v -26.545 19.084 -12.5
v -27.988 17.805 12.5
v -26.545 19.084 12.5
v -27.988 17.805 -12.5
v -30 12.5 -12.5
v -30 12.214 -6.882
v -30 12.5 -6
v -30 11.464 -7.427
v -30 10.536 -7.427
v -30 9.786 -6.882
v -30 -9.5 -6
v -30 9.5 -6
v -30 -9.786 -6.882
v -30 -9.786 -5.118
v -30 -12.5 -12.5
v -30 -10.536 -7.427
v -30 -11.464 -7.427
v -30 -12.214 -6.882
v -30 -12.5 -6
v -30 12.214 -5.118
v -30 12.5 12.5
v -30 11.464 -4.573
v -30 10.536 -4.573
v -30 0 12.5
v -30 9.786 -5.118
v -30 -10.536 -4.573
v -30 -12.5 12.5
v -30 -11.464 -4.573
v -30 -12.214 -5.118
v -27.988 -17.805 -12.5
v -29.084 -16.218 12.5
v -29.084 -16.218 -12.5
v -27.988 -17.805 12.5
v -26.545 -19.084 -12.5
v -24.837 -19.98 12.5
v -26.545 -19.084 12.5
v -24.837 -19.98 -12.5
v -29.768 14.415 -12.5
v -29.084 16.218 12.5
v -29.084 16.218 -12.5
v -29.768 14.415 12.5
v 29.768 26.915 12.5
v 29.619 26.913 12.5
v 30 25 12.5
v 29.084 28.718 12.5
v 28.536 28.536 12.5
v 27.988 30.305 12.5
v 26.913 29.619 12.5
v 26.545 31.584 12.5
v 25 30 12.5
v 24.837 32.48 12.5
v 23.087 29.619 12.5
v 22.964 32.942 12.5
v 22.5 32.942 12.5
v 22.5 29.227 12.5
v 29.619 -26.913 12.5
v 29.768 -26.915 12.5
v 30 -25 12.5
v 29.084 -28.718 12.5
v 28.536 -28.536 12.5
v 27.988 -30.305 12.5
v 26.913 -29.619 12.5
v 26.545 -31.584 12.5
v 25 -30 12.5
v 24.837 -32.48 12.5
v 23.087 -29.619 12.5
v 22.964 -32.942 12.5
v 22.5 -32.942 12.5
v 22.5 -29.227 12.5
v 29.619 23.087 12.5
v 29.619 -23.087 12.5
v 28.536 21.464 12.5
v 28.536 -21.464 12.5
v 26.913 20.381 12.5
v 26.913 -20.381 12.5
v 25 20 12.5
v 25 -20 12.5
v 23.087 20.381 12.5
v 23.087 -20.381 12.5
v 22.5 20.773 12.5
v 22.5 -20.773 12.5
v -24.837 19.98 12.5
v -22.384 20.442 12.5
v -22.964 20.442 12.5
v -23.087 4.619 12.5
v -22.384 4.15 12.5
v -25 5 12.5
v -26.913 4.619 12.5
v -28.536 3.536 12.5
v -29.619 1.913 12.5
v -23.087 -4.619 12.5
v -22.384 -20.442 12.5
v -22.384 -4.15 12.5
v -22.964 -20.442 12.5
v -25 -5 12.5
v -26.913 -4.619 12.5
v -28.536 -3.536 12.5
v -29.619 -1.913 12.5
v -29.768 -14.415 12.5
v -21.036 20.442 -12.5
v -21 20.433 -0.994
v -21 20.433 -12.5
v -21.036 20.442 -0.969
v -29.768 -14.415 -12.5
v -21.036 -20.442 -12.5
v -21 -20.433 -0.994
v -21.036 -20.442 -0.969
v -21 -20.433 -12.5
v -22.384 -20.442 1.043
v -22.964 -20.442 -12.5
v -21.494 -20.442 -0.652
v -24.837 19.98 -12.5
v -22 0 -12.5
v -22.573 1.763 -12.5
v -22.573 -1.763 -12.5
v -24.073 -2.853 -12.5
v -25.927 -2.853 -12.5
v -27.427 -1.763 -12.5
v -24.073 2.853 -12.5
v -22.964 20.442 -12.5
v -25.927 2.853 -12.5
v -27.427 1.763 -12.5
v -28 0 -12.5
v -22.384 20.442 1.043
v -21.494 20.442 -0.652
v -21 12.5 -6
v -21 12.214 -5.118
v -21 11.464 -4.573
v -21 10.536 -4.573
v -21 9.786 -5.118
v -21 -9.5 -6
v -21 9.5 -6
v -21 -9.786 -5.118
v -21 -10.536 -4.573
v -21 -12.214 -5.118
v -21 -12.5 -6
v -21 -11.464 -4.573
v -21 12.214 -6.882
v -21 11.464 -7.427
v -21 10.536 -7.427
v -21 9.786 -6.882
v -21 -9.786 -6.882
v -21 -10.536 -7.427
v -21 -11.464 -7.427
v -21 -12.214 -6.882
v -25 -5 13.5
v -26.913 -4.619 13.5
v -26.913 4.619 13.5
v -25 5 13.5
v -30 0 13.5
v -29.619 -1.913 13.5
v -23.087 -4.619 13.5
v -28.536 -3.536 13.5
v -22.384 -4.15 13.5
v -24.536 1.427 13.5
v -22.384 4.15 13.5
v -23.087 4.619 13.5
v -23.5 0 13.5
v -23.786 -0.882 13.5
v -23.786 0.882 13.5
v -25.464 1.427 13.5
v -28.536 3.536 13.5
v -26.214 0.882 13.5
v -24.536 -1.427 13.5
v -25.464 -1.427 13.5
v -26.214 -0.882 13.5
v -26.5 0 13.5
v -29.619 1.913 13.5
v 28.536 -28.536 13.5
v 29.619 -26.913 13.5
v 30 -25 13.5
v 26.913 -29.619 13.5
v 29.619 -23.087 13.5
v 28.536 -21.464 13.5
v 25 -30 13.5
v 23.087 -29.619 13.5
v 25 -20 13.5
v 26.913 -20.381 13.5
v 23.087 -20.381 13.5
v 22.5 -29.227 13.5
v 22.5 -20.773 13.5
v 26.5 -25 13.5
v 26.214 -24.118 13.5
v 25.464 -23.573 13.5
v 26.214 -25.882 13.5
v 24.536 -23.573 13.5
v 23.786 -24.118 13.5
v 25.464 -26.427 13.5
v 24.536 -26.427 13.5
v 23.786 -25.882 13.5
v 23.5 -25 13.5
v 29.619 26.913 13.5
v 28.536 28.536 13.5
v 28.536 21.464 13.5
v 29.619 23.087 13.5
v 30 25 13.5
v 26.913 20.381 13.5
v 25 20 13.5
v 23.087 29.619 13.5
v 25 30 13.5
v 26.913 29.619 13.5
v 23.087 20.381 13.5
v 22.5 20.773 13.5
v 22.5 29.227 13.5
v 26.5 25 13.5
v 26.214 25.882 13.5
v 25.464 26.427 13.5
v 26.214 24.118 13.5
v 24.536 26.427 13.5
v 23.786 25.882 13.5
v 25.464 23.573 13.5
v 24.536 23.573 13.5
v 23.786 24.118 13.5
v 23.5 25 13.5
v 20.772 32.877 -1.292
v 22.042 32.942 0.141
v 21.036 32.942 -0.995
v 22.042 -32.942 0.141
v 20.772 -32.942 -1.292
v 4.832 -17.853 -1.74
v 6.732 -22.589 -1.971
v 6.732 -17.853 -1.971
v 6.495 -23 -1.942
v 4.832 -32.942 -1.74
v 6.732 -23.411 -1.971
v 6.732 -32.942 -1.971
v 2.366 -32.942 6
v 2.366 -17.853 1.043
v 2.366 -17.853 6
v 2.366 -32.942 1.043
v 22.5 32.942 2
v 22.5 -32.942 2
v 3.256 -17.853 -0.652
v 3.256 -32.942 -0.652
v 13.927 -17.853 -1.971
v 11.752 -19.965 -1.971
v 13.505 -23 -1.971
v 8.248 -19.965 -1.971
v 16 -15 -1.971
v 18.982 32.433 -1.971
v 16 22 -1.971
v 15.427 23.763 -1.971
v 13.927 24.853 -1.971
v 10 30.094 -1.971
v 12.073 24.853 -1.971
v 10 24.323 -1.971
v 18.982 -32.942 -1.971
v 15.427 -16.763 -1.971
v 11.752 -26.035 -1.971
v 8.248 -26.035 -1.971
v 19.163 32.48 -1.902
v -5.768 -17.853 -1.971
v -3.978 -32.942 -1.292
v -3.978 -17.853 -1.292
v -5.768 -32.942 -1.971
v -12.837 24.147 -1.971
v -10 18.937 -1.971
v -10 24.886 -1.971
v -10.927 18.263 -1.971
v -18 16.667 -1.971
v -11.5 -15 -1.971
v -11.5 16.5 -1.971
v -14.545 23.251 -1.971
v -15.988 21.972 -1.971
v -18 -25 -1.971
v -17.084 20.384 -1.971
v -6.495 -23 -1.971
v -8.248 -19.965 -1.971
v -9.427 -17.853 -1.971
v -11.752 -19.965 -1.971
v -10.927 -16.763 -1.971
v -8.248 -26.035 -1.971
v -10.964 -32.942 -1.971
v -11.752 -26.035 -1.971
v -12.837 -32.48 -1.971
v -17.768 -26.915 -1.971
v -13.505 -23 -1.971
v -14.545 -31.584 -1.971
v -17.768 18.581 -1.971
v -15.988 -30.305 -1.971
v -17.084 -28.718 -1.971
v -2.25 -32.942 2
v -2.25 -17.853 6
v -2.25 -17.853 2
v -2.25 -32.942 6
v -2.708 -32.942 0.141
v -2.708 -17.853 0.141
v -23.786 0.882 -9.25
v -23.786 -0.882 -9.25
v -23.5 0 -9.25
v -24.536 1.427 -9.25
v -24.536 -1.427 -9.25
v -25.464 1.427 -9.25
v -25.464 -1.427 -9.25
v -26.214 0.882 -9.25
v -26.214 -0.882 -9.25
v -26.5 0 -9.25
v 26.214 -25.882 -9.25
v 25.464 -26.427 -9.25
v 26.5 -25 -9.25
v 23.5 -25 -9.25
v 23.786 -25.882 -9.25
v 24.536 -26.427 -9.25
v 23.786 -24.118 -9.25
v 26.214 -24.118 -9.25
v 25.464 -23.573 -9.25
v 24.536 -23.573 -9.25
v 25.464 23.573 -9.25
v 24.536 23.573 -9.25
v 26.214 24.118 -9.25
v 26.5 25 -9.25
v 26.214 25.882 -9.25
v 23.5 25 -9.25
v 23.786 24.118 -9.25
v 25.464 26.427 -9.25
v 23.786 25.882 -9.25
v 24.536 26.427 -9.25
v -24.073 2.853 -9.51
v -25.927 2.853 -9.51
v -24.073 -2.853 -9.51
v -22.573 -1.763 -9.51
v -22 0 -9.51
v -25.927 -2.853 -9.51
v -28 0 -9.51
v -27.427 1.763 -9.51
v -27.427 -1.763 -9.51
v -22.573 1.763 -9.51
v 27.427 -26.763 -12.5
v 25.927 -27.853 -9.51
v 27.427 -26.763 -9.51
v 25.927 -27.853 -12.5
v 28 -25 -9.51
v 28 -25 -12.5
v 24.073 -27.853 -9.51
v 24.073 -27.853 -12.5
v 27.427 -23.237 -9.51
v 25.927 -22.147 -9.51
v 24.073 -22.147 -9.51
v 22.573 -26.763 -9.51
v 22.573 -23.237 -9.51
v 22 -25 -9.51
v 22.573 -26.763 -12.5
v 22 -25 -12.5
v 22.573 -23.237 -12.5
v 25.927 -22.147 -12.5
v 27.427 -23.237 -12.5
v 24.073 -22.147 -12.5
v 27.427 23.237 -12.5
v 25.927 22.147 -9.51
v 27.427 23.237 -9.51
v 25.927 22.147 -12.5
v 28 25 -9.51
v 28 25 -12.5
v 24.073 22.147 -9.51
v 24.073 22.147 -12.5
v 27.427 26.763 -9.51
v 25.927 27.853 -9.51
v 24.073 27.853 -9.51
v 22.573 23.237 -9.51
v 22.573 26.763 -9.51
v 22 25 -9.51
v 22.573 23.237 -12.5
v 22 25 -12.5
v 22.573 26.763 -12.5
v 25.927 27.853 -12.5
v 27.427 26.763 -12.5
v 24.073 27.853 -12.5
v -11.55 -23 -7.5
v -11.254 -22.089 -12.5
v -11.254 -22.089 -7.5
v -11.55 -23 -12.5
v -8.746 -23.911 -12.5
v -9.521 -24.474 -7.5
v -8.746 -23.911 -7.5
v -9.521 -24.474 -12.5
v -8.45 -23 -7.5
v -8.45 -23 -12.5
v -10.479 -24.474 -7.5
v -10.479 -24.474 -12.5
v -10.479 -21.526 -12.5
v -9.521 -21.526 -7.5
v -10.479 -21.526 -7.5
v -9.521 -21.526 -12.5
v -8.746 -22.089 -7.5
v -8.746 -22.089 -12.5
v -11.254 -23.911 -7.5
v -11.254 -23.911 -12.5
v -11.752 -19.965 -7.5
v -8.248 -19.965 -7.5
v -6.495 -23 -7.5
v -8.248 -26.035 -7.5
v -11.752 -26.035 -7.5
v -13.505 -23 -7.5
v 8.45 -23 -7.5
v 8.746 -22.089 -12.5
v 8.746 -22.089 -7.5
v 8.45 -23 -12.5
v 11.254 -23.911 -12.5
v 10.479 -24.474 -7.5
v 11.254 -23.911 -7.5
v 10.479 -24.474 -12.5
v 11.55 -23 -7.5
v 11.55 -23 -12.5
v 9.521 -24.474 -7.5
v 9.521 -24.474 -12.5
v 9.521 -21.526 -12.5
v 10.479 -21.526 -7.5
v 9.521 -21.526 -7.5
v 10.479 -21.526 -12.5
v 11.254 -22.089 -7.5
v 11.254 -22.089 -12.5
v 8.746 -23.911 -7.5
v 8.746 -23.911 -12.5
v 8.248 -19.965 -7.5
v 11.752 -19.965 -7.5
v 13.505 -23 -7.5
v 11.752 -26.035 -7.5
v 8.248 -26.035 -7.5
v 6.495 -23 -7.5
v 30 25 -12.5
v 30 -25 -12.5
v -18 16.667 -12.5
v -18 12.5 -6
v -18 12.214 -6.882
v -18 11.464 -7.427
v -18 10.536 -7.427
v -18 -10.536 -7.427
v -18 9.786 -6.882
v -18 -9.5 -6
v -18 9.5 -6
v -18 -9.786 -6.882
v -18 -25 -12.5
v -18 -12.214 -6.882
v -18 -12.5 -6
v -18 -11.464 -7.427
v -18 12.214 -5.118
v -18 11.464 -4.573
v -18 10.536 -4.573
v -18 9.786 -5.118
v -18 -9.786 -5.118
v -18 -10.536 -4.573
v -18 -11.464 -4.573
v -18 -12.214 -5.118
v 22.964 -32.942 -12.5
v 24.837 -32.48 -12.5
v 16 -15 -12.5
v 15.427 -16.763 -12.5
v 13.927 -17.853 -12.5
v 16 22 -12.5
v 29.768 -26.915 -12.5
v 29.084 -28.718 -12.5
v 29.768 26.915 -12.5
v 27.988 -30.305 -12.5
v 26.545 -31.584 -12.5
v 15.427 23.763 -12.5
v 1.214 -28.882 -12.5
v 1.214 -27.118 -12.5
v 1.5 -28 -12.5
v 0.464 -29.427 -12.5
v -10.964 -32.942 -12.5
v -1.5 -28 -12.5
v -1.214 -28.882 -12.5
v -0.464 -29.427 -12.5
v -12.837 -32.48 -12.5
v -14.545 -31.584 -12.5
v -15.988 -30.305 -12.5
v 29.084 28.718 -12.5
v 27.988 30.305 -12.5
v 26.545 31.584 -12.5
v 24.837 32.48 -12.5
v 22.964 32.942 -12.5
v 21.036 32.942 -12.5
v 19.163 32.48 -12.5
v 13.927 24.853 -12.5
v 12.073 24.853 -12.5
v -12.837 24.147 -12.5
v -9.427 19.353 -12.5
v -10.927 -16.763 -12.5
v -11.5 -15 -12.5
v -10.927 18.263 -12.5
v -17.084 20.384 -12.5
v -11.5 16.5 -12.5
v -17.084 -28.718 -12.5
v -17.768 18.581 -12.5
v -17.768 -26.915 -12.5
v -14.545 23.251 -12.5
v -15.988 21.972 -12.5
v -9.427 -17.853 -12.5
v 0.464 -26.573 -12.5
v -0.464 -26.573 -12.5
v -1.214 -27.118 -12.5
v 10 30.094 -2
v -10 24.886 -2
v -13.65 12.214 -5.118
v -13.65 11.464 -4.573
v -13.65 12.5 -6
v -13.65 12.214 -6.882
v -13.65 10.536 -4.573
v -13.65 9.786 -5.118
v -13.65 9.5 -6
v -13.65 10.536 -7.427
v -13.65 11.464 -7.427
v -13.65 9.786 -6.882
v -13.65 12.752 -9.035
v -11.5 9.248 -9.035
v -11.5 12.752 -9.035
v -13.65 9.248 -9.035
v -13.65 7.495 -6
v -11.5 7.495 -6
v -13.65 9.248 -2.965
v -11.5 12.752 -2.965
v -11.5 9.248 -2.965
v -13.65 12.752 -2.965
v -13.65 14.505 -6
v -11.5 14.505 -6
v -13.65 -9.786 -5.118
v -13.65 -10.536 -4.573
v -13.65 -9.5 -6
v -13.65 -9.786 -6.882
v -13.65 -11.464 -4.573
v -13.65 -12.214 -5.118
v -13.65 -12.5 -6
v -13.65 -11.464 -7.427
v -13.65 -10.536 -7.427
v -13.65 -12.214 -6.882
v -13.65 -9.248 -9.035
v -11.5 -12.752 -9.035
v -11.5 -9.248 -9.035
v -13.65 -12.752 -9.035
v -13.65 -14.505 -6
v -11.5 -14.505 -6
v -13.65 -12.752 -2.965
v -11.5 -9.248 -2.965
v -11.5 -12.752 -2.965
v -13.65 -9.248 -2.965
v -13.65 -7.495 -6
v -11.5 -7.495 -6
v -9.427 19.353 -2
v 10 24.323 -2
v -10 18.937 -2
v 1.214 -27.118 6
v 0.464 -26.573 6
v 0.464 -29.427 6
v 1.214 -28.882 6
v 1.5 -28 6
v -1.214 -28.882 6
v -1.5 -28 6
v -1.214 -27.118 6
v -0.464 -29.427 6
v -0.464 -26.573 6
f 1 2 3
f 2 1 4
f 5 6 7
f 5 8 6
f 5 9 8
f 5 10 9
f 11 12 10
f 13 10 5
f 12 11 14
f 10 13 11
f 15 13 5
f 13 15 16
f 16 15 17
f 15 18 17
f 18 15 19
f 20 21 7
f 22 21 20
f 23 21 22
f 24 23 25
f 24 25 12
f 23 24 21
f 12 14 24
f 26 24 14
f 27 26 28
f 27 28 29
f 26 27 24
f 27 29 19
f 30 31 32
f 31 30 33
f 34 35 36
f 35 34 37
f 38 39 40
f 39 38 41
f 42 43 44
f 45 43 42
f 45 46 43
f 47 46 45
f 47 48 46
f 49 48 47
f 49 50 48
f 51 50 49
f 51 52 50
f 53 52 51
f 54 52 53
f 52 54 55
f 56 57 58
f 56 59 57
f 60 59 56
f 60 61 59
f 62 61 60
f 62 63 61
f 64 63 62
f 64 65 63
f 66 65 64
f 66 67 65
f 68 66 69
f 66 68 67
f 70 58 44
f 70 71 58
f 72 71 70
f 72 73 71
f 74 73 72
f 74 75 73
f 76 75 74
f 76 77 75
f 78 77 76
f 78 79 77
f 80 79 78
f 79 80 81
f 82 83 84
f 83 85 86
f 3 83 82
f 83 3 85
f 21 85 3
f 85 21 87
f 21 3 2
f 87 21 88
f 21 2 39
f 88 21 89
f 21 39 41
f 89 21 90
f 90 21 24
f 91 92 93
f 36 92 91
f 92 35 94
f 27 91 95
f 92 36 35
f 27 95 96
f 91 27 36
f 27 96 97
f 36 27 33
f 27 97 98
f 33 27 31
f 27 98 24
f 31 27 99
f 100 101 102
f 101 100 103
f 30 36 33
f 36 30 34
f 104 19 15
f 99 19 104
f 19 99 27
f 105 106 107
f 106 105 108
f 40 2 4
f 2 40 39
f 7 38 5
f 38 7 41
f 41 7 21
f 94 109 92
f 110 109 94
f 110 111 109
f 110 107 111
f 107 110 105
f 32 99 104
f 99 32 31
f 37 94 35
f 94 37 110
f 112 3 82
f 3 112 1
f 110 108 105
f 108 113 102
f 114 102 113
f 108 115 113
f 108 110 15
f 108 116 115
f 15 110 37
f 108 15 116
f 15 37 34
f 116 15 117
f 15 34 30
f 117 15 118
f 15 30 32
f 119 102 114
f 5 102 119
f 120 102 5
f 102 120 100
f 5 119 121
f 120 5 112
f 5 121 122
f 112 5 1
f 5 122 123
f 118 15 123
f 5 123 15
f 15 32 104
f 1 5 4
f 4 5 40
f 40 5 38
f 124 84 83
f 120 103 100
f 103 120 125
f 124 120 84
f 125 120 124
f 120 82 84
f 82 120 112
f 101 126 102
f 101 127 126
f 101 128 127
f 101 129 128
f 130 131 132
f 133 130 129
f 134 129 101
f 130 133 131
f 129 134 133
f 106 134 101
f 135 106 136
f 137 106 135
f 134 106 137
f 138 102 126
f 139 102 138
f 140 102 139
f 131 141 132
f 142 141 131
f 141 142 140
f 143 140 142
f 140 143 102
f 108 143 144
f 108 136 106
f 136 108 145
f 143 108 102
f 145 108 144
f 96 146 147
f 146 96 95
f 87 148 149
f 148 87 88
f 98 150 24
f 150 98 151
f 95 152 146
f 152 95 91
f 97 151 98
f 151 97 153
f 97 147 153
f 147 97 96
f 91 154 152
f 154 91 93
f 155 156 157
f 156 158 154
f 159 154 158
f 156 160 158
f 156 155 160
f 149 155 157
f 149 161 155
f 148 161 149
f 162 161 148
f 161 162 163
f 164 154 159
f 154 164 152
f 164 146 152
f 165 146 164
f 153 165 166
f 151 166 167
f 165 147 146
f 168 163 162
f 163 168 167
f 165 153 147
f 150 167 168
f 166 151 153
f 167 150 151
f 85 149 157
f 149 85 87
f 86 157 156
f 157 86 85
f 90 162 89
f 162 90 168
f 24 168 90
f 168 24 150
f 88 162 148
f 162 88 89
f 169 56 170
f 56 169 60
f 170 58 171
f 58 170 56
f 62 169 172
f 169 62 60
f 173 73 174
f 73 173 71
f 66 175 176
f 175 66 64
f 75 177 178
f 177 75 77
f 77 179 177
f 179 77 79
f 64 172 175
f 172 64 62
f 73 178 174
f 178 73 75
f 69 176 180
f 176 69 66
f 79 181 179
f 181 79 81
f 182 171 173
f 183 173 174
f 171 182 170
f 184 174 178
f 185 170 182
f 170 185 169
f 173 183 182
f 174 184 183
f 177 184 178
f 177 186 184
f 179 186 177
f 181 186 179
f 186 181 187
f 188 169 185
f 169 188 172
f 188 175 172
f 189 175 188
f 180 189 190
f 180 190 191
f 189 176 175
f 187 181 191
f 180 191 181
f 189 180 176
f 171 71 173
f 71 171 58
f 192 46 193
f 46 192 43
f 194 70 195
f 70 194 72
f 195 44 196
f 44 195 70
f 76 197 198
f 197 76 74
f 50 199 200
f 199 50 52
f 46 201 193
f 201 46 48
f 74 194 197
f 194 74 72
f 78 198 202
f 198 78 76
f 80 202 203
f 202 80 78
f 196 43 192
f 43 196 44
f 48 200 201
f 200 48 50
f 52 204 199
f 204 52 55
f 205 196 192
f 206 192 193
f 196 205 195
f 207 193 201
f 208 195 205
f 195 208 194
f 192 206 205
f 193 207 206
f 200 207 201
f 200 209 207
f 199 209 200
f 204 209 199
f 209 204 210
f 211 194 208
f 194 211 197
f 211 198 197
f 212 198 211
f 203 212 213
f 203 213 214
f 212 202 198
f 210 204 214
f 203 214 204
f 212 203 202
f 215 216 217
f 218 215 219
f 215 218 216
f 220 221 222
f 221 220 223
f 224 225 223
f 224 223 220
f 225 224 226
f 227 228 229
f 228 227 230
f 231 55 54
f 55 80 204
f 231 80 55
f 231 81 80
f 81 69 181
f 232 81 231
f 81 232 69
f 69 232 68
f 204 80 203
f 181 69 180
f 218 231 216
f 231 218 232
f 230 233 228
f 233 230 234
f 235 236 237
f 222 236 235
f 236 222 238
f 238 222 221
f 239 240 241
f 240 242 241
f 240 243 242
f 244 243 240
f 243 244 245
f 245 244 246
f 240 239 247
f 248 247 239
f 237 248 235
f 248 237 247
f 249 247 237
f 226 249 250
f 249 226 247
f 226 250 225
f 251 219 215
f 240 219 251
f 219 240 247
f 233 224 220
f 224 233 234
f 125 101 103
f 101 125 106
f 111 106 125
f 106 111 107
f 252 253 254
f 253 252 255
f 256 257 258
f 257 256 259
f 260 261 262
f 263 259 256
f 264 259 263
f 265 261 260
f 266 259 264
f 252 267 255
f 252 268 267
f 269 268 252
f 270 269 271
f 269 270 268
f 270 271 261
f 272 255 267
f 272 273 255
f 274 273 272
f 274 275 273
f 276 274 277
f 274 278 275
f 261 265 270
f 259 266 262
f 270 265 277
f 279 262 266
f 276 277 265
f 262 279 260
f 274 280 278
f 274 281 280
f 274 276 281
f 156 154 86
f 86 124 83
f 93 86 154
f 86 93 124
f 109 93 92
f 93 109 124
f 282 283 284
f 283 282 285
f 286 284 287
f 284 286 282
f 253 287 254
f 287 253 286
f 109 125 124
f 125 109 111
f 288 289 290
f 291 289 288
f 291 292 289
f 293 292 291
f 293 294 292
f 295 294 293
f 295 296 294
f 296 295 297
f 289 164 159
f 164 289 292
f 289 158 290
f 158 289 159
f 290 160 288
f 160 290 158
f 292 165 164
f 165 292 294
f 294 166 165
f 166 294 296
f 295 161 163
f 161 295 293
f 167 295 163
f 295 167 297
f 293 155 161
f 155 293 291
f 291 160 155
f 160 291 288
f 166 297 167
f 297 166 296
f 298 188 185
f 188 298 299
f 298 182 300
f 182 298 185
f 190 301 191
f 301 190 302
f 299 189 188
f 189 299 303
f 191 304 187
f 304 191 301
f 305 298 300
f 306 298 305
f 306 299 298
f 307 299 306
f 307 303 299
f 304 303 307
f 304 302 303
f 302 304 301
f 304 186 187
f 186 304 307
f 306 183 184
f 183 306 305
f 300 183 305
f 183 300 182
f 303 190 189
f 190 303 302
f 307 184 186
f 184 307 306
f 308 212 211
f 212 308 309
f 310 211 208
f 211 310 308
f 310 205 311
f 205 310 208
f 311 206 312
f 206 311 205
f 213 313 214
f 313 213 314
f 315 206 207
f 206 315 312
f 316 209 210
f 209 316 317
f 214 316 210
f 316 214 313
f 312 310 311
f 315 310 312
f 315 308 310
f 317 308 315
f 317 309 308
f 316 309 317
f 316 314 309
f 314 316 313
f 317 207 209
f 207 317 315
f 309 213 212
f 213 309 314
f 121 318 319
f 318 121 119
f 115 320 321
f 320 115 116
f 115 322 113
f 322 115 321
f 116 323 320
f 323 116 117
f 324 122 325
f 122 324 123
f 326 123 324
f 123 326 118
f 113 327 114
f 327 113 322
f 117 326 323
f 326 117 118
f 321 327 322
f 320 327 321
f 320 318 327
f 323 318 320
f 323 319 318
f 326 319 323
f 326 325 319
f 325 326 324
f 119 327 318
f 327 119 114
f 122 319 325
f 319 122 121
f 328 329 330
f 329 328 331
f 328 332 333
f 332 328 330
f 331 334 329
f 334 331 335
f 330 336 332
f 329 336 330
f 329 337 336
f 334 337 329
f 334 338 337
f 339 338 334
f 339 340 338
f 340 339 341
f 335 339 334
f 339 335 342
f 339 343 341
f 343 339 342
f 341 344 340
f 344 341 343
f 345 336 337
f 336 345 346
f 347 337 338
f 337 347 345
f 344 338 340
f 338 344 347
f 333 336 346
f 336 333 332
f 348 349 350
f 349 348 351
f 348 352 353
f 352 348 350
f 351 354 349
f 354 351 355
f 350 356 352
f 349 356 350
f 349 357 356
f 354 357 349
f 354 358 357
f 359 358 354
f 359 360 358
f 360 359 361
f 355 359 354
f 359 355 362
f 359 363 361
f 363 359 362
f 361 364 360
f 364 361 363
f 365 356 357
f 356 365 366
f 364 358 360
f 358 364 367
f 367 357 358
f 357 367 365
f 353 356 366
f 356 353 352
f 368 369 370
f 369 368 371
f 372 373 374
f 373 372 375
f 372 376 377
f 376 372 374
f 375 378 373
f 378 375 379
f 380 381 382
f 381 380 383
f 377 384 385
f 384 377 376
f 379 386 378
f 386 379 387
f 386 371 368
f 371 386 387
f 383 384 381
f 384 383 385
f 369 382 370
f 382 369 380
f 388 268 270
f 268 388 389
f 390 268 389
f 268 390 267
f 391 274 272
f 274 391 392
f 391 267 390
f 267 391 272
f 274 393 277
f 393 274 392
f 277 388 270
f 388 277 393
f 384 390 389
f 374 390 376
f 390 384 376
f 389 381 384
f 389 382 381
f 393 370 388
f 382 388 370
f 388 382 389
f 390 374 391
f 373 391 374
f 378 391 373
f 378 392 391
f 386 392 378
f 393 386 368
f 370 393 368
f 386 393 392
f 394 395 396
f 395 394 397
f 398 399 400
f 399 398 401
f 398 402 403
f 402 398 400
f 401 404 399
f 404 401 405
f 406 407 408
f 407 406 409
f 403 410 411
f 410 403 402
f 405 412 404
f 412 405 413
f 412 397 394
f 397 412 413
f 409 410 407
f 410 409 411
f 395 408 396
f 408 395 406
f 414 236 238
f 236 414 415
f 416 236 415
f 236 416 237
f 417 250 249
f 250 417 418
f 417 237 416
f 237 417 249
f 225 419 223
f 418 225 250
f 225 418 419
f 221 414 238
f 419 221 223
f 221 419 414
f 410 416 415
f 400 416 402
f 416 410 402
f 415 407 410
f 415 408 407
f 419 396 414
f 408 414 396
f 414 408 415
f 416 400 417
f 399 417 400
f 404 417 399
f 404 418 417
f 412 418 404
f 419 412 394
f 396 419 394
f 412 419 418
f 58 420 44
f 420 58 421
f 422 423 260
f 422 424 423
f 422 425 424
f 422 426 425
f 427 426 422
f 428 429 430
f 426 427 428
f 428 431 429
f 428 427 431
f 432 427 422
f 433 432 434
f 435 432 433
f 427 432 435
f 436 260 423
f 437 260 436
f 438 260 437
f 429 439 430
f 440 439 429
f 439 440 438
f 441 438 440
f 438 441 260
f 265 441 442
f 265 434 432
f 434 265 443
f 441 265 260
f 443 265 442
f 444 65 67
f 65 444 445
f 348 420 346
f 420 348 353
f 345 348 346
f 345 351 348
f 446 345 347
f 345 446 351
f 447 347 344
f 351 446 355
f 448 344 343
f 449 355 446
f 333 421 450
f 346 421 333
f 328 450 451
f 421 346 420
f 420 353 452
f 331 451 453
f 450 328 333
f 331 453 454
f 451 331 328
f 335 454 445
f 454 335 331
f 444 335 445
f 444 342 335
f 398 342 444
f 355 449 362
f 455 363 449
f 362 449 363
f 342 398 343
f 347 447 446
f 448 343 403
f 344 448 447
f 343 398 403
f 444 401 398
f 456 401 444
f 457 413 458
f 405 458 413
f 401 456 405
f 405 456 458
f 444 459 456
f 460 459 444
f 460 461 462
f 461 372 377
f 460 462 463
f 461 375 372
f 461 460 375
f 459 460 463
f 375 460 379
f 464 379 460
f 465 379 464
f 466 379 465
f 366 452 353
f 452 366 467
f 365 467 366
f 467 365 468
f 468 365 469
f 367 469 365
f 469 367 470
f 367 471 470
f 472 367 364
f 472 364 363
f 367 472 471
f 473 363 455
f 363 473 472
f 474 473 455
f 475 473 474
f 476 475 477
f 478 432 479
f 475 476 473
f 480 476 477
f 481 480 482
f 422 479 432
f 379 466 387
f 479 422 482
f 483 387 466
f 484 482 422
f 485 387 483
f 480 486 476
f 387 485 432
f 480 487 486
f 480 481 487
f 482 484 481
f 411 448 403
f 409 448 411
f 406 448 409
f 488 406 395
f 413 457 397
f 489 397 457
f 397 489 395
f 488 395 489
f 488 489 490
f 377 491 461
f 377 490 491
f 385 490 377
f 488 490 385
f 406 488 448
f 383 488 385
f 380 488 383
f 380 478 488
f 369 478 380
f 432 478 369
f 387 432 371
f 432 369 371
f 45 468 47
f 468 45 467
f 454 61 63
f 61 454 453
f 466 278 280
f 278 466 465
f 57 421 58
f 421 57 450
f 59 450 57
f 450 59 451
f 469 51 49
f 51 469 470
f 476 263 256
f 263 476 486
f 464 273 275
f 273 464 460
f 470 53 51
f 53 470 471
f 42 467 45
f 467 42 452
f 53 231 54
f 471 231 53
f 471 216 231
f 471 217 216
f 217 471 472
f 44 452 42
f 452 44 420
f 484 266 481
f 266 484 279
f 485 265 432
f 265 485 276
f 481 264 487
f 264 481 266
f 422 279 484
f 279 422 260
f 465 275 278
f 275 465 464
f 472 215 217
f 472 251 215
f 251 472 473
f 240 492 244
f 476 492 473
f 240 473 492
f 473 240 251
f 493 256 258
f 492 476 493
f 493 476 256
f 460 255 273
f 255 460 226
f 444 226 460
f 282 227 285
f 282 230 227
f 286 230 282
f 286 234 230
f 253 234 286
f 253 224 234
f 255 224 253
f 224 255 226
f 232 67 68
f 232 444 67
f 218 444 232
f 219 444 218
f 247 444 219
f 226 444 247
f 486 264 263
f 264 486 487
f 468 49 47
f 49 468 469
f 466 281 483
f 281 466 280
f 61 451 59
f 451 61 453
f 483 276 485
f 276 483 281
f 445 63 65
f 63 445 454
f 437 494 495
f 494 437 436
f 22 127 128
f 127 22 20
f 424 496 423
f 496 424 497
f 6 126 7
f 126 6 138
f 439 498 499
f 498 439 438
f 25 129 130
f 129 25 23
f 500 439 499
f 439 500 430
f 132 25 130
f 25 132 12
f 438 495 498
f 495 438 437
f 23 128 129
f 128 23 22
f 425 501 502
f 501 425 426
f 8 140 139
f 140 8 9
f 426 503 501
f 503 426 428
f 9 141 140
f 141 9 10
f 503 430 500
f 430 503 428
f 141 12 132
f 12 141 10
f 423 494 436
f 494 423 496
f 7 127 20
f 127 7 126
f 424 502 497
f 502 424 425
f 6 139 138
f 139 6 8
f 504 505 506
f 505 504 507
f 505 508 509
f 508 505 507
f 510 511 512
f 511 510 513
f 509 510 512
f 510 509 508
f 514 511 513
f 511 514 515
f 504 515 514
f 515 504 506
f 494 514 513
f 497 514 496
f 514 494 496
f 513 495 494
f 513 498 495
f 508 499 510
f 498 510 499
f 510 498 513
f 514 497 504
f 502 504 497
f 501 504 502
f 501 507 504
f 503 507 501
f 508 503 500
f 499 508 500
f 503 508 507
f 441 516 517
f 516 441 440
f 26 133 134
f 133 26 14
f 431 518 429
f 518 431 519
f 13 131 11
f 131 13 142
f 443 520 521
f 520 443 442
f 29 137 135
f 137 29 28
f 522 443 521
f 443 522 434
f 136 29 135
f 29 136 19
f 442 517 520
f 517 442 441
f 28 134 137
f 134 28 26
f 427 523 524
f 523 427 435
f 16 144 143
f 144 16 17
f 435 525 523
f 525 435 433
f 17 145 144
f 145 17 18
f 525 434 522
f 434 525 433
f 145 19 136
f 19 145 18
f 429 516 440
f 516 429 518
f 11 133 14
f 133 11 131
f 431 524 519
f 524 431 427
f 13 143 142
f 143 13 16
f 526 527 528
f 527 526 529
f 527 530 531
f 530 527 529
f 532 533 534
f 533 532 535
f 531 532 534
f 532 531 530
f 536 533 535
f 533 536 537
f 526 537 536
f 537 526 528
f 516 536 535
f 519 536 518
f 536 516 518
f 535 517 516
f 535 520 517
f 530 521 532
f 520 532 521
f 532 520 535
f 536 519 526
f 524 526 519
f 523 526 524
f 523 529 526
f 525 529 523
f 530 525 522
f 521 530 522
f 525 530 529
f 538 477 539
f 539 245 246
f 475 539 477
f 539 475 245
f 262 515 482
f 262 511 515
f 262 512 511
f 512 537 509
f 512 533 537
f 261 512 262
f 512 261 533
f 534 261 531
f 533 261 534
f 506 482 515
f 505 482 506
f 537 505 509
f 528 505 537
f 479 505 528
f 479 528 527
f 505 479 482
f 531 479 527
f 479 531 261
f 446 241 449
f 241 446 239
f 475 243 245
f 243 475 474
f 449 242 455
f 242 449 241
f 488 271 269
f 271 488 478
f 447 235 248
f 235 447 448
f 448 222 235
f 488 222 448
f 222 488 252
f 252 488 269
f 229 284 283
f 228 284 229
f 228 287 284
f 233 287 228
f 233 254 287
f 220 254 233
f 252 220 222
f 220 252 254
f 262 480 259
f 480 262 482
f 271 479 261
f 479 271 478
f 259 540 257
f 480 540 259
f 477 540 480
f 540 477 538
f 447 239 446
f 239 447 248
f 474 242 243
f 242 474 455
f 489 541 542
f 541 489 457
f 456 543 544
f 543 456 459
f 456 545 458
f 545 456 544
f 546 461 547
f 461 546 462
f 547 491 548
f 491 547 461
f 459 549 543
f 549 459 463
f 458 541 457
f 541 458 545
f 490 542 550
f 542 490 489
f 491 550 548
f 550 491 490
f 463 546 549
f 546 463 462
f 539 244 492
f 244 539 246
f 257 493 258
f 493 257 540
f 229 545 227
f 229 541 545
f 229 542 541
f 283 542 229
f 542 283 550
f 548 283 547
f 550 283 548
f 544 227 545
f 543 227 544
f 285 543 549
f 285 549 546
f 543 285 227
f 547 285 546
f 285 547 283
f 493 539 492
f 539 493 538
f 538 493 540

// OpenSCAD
// file: metric-cerberus.scad
module extrusion4040(h=1000) {
  translate([-20,-20,0])
    linear_extrude(height=h) import("extrusion.dxf");
}

module extrusion4040_no_hole(h=40) {
  translate([-20,-20,0])
    linear_extrude(height=h) import("extrusion-no-hole.dxf");
}

module extrusion4040_no_hole_3_groove(h=40) {
  rotate([0,0,90]) translate([-20,-20,0])
    linear_extrude(height=h) import("extrusion-no-hole-3-groove.dxf");
}

module fixing_bar(length = 320, height = 25, thickness = 2.5) {
  rotate([0, 0, -30]) translate([-(thickness/2+20), -(length/2+7.5), height/2])
    cube([thickness, length, height], center = true);
}

module slots_for_bars(h = 25.4, hole_diameter = 4.2) {
  // slots for bars
  rotate([0, 0, 30]) translate([21.5, -57.5, h/2])
    cube([3, 100, h], center = true);
  rotate([0, 0, -30]) translate([-21.5, -57.5, h/2])
    cube([3, 100, h], center = true);

  // cutouts beside bars
  rotate([0, 0, 30]) translate([26, -65, h/2])
    cube([10, 100, h], center = true);
  rotate([0,0,-30]) translate([-26, -65, h/2])
    cube([10, 100,h], center = true);

  // holes to secure bar
  translate([30, -13, h/2])
    rotate([0, 90, 30])
    cylinder(r=hole_diameter/2, h=38, $fn = 12, center = true);
  translate([-30, -13, h/2])
    rotate([0, 90, -30])
     cylinder(r=hole_diameter/2, h=38, $fn = 12, center = true);
}
// file: config.scad
diameter=392;
bar_length=.95*cos(30)*diameter; // 322
bar_height=25;
bar_scale = 1.02; // allow extra space to fit
bar_thickness=2.5;
extrusion_length = 1000;
extrusion_width = 40;
extrusion_scale = 1.02; // allow extra space to fit

// outer brace upper bracket configuration
outer_brace_upper_bracket_height = 35.6;
endstop_hole_diameter = 2.2; // should be drill size but slightly bigger works
// distance from center of hole to center of endstop
endstop_hole_width = 4.75;
// distance from center of trigger to center of endstop
endstop_trigger_offset = 3.125;

// these are not required for printing just for the model
endstop_hole_height = 1.5+2.5/2;
endstop_width = 20;
endstop_height = 10.75;
endstop_depth = 6.5;
endstop_trigger_width = 1.75;
endstop_trigger_height = 1.25;
endstop_trigger_depth = 2.5;

// outer brace bottom bracket configuration
base_thickness = 2.55; // height of bottom of extrusion above ground
// main file
// EXPERIMENTAL: DO NOT PRINT UNLESS YOU ARE HAPPY TO WASTE PLASTIC
// EXPERIMENTAL: DO NOT PRINT UNLESS YOU ARE HAPPY TO WASTE PLASTIC
// EXPERIMENTAL: DO NOT PRINT UNLESS YOU ARE HAPPY TO WASTE PLASTIC
// EXPERIMENTAL: DO NOT PRINT UNLESS YOU ARE HAPPY TO WASTE PLASTIC

include <config.scad>;
use <metric-cerberus.scad>;
to_print = 1;
layer_height = .25; // to add a layer of bridging support to the bearing holes
roller_diameter = 13.3; // on flat part
roller_width = 11;

if (0) {
  translate([0,19.5,2]) #vert_carriage_for_623_dual_bearing_roller();
}

module vert_carriage(extrusion_width = 40, spacing = 2.5, curvature = 8)
{
  width = extrusion_width+10;
  height = width;
  depth = 25;
  hole_offset = extrusion_width/2+5;
  vert_hole_offset = height;
  cut_width = extrusion_width+spacing;
  center_width = 4.5;
  adjustment_slit_width = 1.5;
  end_stop_block_width = 25;
  end_stop_screw_hole_diameter = 0; // 3.5mm (m4 tap) or 0 (no hole)
  end_stop_block = 0;
  bearing_support_rad = 5;
  hull_offset = curvature-bearing_support_rad;
  idler_gap = 3;

  difference() {

    union() {
      // main body
      hull() {
        translate([width/2-hull_offset, 0, -1*height/2])
          rotate([90,0,0]) cylinder(r=curvature, h = depth, center = true);
        translate([width/2-hull_offset, 0, 1*height/2])
          rotate([90,0,0]) cylinder(r=curvature, h = depth, center = true);
        translate([-10, 0, -1*height/3])
          rotate([90,0,0]) cylinder(r=curvature, h = depth, center = true);
        translate([-10, 0, 1*height/2])
          rotate([90,0,0]) cylinder(r=curvature, h = depth, center = true);
      }
      // body idler
      difference() {
        hull() {
          translate([-width/2+hull_offset, 0, -1*height/4])
            rotate([90,0,0]) cylinder(r=curvature, h = depth, center = true);
          translate([-width/2+hull_offset, 0, 1*height/4])
            rotate([90,0,0]) cylinder(r=curvature, h = depth, center = true);
        }
        // cut out idler's body
        translate([-10-curvature-idler_gap,-depth,-height]) cube([width,depth,2*height]);
      }

      // bearing supports
      for (t = [[-1*hole_offset, 0, 0],
                [hole_offset, vert_hole_offset*.5, 0],
                [hole_offset, vert_hole_offset*-.5, 0]]) {
        translate([0, 1, 0])
        rotate([90, 0, 0])
          translate(t) cylinder(r = bearing_support_rad, h = depth, center = true);

        // roller
        translate([0, 1.5+(roller_width+depth)/2, 0]) {
          rotate([90, 0, 0]) {
            translate(t) {
              %cylinder(r = roller_diameter/2,
                h = roller_width, center = true);
            }
          }
        }
      }
    }

    // cut out middle
    hull() {
      for (t = [[width/2-12, 0, 15], [-10+3/2, 0, 15],
                [width/2-12, 0, -22], [-10+3/2, 0, -16.5]]) {
        translate(t)
          rotate([90, 0, 0]) cylinder(r=3, h=depth+10, center = true);
      }
    }
    // cut out idler's features
    translate([-10-curvature-idler_gap,-depth,-height]) cube([idler_gap,depth,2*height]);

    // idler screws
    for (t = [
        [0,-2-4,-1*height/4+3/2],
        [0,-2-4,1*height/4-3/2],
      ]) {

      translate(t) rotate([0,-90,0]) {
        cylinder(r=3/2, h=width, $fn=10);
        cylinder(r=(6.01+1)/2, h=10+3/2+2.15, $fn=6);
      }
    }

    // filament/bracket screw
    translate([0, 0, height/2+3]) rotate([90,0,0])
        cylinder(r=3/2, h = depth+2, center = true, $fn=10);


    // clear middle
    translate([0, 16, 0]) cube([20, 20, height*2], center = true);

    // clear middle bottom
    translate([0, 18, -14])
      cube([20, extrusion_width, height], center = true);

    // clear extrusion curves
    for (x=[
      [
        [extrusion_width/2-4+spacing,12+10,0],
        [center_width/2+4,12+10,0],
        [extrusion_width/2-4+spacing,12-10,0],
        [center_width/2+4,12-10,0],
      ],
      [
        [-extrusion_width/2+4-spacing,12+10,height+curvature],
        [-center_width/2-4,12-10,height+curvature],
        [-extrusion_width/2+4-spacing,12-10,height+curvature],
        [-center_width/2-4,12+10,height+curvature],
      ],
      [
        [-extrusion_width/2+4-spacing,12+10,-height+curvature],
        [-center_width/2-4,12-10,-height+curvature],
        [-extrusion_width/2+4-spacing,12-10,-height+curvature],
        [-center_width/2-4,12+10,-height+curvature],
      ],
    ]) {
      hull() {
        for (y=x) {
          translate(y)
            cylinder(r=4, h = height*2, center = true);
        }
      }
    }

    // bearing holes
    for (t = [[-1*hole_offset, layer_height+3, 0 ],
              [hole_offset, layer_height+3, vert_hole_offset*.5],
              [hole_offset, layer_height+3, vert_hole_offset*-.5]]) {
      translate(t) rotate([90, 0, 0])
        cylinder(r = 3/2, h = depth, center = true, $fn = 10);
    }

    // bearing holes sink heads
    for (t = [[-1*hole_offset, -depth/2+1.49, 0],
              [hole_offset, -depth/2+1.49, vert_hole_offset*.5],
              [hole_offset, -depth/2+1.49, vert_hole_offset*-.5]]) {
      translate(t) rotate([90, 0, 0])
        cylinder(r = 3, h = 3, center = true, $fn = 10);
    }

    // mounting holes for carriage bracket
    // spacing is middle then 10 across and 5 down for each hole
    for (t = [[-10, 0, height/2-2],
              [10, 0, height/2-2]]) {
      translate(t) rotate([90,0,0]) {
        translate([0,0,8])
          cylinder(r=3.1/2, h = 10, center = true, $fn=10);

        // m3 nut trap
        cylinder(r=(6.01+1)/2, h = depth/2-5, $fn=6);
      }
    }
  }
}

// rotate to print
rotate([to_print ? 90 : 0, 0, 0]) {

  // the part
  vert_carriage();

  // extrusion
  %translate([0,19.5,-40]) extrusion4040(h=80);

  //testfit carriage bracket
  //include <carriage-bracket.scad>;
}
